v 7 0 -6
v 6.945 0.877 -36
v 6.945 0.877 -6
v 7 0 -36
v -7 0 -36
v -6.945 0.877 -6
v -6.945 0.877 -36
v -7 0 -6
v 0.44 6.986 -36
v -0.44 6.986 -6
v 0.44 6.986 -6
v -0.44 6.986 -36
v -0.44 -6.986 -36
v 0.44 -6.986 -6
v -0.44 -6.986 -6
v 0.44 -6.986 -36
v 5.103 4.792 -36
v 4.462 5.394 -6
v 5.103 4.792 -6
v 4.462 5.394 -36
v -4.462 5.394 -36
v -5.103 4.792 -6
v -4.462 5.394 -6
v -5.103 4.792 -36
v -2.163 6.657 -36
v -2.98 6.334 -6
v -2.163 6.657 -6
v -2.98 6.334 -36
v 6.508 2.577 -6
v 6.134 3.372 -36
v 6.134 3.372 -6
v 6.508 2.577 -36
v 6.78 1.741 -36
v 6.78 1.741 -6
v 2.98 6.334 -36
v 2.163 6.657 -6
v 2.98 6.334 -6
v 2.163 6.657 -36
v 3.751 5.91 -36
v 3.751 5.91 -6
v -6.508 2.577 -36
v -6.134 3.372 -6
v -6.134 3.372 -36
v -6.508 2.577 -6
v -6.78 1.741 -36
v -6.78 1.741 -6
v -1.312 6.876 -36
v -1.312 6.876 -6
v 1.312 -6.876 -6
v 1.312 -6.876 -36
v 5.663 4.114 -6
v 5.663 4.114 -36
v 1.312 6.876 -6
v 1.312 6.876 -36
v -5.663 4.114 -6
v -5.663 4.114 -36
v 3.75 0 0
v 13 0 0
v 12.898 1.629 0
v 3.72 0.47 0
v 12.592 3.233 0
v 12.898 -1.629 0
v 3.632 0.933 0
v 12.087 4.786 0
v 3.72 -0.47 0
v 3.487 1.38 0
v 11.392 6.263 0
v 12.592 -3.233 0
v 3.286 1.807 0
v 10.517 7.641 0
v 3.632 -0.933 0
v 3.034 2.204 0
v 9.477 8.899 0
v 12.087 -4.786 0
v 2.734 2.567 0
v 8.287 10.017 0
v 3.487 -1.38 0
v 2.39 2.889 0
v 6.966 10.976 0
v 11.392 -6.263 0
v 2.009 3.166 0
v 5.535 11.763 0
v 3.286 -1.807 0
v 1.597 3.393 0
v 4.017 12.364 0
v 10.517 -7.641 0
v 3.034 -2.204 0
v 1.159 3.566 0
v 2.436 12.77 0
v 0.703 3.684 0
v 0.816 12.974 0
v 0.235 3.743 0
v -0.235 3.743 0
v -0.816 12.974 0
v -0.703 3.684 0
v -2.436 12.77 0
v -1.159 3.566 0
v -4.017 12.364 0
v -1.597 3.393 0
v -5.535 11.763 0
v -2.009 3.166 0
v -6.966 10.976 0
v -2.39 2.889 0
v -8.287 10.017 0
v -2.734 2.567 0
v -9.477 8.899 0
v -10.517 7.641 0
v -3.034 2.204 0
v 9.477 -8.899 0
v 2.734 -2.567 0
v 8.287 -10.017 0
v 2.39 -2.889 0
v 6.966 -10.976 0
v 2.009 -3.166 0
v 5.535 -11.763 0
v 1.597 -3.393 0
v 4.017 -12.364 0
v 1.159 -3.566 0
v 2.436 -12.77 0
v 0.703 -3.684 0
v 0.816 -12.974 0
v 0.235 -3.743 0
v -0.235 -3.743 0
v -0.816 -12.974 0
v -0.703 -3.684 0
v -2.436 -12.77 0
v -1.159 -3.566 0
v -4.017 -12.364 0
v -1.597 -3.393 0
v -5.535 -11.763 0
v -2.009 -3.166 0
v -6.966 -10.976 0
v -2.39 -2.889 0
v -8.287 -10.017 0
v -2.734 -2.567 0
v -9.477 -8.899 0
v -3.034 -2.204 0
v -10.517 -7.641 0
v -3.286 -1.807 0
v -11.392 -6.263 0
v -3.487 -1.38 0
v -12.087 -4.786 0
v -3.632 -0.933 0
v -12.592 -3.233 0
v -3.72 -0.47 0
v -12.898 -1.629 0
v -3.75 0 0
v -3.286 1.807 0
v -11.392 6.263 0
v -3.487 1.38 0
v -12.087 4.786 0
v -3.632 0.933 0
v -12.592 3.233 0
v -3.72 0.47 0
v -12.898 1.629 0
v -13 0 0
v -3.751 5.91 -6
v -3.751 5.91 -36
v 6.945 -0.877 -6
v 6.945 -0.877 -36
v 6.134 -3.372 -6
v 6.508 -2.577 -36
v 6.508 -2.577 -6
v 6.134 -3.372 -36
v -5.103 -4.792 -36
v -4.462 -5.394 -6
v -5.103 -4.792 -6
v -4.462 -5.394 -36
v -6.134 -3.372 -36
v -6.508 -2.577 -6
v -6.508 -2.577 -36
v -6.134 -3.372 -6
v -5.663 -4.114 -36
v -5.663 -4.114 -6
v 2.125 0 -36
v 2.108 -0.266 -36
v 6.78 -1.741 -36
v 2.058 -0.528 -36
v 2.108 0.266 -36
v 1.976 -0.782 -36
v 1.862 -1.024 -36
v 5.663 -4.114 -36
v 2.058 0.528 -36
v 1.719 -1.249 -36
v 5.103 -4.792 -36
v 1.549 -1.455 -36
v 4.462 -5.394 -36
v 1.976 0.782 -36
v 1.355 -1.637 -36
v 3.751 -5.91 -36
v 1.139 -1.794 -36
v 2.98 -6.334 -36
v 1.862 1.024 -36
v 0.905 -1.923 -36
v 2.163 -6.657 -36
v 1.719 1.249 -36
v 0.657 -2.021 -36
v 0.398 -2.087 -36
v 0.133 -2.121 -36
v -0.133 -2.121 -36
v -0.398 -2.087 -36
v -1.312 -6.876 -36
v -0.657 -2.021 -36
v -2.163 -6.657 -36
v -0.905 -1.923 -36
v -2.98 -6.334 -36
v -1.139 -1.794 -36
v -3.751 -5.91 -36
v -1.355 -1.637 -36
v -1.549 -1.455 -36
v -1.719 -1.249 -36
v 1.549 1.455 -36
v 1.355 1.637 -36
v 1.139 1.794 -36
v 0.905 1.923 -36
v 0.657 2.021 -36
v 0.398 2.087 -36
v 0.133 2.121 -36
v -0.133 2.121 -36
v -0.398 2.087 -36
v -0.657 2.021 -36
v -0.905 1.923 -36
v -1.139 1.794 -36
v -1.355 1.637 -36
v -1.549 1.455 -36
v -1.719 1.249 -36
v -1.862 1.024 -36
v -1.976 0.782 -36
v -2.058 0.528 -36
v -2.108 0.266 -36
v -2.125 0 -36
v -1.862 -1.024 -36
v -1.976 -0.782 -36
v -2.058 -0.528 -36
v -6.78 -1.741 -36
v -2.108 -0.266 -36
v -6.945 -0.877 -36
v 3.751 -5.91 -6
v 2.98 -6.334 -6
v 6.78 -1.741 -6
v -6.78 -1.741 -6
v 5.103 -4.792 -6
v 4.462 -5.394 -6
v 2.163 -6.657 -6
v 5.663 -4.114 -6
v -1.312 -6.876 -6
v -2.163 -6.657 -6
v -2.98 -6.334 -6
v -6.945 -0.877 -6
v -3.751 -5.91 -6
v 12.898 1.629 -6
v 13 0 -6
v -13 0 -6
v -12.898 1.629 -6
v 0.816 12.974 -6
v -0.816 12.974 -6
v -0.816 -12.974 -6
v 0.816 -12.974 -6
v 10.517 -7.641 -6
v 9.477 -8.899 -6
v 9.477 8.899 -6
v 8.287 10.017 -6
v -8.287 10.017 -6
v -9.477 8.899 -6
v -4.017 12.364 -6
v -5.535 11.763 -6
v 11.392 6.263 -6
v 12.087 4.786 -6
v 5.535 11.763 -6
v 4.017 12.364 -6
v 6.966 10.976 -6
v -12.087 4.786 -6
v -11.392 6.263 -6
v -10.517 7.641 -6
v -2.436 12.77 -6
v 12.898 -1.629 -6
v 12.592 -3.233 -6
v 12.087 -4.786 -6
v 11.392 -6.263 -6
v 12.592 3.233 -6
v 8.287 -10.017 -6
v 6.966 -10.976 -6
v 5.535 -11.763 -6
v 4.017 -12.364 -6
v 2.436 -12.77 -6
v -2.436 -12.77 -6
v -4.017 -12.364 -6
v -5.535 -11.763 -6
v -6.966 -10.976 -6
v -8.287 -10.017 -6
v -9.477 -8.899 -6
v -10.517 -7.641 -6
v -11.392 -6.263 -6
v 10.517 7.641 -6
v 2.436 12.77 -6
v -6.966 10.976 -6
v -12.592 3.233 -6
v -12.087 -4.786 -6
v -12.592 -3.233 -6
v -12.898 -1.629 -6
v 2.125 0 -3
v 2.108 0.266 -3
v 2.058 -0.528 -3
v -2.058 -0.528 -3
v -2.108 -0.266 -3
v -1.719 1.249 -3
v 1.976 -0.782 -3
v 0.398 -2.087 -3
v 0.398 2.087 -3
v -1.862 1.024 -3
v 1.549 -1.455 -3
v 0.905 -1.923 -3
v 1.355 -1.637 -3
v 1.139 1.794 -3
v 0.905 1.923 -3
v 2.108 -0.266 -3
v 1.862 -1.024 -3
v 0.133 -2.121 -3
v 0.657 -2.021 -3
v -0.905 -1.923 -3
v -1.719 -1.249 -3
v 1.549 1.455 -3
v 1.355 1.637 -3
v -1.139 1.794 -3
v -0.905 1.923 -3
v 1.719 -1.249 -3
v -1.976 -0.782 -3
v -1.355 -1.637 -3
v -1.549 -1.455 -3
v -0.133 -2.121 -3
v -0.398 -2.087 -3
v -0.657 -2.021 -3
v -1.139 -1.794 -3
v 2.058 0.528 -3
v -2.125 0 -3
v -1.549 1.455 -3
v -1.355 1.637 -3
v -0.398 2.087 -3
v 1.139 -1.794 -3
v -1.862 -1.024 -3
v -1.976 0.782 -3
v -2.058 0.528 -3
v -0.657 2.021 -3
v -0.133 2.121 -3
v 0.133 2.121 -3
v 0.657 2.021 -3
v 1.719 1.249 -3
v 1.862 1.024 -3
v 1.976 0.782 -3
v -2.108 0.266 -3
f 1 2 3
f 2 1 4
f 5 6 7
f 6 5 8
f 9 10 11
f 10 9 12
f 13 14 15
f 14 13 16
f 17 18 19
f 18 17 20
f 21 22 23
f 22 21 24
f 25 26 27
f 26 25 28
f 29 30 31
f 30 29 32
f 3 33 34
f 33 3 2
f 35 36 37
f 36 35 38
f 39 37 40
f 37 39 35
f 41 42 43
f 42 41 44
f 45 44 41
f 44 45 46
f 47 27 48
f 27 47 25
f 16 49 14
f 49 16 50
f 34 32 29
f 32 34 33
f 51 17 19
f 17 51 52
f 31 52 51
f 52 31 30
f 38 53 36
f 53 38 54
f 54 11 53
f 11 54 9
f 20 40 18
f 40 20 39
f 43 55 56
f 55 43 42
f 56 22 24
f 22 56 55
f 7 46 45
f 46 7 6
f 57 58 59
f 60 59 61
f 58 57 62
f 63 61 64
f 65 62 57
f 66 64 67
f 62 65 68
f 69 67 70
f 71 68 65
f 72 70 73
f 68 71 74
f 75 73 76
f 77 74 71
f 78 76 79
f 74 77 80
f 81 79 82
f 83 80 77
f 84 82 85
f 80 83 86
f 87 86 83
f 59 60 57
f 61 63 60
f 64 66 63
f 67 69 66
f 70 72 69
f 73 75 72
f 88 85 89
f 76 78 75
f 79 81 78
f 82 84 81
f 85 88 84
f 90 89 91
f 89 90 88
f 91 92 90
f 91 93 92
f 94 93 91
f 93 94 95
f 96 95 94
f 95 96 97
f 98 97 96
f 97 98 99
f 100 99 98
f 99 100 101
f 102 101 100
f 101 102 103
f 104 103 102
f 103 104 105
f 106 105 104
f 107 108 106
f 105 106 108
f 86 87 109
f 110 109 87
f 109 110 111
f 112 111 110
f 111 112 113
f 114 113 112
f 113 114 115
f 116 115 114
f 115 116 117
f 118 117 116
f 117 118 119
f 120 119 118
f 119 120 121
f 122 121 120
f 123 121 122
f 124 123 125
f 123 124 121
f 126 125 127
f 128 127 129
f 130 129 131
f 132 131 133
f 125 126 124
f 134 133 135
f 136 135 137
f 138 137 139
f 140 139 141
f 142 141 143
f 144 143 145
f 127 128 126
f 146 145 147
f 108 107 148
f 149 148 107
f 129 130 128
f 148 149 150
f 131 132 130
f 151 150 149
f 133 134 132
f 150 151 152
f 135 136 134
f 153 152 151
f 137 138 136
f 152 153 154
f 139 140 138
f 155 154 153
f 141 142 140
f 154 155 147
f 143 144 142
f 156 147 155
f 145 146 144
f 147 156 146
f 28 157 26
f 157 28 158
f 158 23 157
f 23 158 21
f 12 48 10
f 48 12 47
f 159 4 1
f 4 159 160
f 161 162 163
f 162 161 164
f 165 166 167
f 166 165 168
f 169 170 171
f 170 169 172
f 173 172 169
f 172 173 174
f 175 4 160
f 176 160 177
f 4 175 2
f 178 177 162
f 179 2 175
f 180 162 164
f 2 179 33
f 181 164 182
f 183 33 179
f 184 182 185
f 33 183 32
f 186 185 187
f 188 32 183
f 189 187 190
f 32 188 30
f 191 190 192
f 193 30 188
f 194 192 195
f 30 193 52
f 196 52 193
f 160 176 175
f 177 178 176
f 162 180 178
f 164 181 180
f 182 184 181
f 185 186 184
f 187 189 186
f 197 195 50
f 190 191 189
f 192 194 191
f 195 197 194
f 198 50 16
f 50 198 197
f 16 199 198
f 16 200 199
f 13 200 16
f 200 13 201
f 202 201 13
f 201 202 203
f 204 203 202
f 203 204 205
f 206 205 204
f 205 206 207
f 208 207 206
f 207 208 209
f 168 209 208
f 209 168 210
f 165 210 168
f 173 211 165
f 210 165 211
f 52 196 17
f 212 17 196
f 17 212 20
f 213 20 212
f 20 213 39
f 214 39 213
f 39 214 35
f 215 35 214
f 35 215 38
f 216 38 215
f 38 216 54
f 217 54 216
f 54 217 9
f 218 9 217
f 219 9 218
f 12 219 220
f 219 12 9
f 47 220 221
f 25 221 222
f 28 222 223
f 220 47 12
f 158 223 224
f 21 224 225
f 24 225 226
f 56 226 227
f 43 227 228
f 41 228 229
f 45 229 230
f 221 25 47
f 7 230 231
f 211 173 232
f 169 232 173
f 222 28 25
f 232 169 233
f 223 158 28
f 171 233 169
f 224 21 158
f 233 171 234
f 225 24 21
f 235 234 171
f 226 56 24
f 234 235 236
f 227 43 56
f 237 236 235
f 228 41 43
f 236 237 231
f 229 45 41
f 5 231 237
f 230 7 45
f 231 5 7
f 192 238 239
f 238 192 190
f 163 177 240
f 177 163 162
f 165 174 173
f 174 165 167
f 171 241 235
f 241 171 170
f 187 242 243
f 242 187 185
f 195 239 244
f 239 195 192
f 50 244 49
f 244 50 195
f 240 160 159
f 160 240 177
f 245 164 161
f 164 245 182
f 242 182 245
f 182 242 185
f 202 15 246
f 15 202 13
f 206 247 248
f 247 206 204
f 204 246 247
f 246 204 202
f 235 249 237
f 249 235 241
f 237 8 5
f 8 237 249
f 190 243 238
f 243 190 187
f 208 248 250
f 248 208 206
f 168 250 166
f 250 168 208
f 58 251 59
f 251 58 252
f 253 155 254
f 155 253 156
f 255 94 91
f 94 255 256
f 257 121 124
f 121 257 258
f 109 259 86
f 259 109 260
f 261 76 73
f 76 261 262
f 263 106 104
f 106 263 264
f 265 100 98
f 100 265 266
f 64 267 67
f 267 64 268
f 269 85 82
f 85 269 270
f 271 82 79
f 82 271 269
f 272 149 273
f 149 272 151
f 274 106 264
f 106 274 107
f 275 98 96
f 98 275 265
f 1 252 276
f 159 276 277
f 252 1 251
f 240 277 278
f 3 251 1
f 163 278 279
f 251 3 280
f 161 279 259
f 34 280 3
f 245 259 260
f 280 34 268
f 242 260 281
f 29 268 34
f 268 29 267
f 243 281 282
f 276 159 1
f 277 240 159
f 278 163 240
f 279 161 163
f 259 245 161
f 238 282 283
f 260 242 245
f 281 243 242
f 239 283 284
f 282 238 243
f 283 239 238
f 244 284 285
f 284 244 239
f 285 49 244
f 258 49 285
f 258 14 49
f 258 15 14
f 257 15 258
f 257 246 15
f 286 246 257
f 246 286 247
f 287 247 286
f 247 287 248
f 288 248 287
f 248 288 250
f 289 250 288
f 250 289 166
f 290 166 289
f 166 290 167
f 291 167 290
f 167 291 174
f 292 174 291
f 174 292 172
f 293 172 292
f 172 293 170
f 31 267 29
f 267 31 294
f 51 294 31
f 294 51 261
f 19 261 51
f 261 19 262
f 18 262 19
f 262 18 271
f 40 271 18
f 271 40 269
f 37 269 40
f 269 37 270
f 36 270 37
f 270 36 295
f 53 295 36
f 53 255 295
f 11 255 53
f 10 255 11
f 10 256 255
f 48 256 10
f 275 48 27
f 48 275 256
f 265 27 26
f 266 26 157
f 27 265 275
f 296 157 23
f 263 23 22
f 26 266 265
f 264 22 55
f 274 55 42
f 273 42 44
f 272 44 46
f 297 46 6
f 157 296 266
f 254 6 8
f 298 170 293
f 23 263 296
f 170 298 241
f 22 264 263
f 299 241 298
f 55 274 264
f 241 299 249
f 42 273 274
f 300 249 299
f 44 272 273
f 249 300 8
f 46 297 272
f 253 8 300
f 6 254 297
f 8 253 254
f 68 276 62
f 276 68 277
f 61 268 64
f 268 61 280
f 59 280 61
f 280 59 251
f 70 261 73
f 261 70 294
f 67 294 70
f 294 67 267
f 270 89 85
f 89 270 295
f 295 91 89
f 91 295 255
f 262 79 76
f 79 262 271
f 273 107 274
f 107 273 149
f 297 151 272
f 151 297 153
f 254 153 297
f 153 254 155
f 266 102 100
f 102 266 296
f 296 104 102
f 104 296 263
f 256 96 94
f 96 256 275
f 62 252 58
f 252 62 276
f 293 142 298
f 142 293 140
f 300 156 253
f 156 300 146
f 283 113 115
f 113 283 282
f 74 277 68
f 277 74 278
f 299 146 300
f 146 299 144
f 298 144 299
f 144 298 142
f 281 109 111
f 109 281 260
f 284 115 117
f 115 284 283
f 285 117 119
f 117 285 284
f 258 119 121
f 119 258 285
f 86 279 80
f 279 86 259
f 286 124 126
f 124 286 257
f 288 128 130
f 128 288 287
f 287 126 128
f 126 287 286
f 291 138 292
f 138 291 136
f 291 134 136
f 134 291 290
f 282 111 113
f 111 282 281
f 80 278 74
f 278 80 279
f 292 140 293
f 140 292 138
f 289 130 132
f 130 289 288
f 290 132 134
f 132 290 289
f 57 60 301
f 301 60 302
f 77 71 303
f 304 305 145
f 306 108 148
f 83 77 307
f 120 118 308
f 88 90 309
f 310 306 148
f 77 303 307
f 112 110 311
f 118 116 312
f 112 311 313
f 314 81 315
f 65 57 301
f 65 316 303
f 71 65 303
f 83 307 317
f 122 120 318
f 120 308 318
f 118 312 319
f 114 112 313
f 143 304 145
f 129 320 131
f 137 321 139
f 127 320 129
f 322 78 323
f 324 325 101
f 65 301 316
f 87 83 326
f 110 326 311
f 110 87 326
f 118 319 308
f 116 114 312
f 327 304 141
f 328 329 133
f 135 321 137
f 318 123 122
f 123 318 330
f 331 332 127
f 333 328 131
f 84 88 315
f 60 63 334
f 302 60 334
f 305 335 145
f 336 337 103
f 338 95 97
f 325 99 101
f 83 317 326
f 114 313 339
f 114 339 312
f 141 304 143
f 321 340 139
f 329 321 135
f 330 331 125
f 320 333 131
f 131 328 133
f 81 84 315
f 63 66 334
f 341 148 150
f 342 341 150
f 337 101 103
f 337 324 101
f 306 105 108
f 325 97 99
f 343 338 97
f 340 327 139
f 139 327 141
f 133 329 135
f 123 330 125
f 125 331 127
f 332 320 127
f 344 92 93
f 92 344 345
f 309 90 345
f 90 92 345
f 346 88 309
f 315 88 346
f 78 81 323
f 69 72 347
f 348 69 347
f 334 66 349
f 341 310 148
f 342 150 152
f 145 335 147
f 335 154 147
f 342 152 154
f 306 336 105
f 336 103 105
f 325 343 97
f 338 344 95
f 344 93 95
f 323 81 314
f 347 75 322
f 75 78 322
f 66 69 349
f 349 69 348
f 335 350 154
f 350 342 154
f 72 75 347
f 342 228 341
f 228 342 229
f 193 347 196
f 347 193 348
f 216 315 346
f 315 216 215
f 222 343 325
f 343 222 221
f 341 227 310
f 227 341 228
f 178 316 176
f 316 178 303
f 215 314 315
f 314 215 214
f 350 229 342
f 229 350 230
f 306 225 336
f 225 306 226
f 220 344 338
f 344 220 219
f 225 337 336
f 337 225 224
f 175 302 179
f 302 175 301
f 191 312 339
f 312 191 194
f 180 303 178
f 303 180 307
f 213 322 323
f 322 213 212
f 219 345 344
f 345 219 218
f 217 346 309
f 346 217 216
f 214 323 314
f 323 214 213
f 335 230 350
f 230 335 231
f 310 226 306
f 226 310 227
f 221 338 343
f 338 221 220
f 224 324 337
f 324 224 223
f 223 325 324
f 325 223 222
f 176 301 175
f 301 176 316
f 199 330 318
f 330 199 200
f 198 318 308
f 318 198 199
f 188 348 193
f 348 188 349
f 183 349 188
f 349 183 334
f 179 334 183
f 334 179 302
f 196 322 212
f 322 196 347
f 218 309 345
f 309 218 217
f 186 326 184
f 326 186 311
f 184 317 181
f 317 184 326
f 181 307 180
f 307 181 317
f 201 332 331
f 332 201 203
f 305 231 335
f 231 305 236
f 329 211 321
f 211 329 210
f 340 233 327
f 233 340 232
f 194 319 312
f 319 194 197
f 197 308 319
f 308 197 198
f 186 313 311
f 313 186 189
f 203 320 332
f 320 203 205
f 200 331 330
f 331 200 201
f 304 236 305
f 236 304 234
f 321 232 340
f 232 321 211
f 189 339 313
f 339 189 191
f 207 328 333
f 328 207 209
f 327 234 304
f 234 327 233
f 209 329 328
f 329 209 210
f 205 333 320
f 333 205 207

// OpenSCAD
$fn = 50;


difference() {
	union() {
		translate(v = [0, 0, -36.0000000000]) {
			cylinder(h = 36, r = 7.0000000000);
		}
		translate(v = [0, 0, -6.0000000000]) {
			cylinder(h = 6, r = 13.0000000000);
		}
	}
	union() {
		translate(v = [0, 0, 0]) {
			rotate(a = [0, 0, 0]) {
				difference() {
					union() {
						#translate(v = [0, 0, -36.0000000000]) {
							cylinder(h = 36, r = 2.0000000000);
						}
						#translate(v = [0, 0, -3]) {
							cylinder(h = 3, r = 7.0000000000, r1 = 2.1250000000, r2 = 3.7500000000);
						}
						#translate(v = [0, 0, -36.0000000000]) {
							cylinder(h = 36, r = 2.1250000000);
						}
						#translate(v = [0, 0, -36.0000000000]) {
							cylinder(h = 36, r = 2.0000000000);
						}
					}
					union();
				}
			}
		}
	}
}
